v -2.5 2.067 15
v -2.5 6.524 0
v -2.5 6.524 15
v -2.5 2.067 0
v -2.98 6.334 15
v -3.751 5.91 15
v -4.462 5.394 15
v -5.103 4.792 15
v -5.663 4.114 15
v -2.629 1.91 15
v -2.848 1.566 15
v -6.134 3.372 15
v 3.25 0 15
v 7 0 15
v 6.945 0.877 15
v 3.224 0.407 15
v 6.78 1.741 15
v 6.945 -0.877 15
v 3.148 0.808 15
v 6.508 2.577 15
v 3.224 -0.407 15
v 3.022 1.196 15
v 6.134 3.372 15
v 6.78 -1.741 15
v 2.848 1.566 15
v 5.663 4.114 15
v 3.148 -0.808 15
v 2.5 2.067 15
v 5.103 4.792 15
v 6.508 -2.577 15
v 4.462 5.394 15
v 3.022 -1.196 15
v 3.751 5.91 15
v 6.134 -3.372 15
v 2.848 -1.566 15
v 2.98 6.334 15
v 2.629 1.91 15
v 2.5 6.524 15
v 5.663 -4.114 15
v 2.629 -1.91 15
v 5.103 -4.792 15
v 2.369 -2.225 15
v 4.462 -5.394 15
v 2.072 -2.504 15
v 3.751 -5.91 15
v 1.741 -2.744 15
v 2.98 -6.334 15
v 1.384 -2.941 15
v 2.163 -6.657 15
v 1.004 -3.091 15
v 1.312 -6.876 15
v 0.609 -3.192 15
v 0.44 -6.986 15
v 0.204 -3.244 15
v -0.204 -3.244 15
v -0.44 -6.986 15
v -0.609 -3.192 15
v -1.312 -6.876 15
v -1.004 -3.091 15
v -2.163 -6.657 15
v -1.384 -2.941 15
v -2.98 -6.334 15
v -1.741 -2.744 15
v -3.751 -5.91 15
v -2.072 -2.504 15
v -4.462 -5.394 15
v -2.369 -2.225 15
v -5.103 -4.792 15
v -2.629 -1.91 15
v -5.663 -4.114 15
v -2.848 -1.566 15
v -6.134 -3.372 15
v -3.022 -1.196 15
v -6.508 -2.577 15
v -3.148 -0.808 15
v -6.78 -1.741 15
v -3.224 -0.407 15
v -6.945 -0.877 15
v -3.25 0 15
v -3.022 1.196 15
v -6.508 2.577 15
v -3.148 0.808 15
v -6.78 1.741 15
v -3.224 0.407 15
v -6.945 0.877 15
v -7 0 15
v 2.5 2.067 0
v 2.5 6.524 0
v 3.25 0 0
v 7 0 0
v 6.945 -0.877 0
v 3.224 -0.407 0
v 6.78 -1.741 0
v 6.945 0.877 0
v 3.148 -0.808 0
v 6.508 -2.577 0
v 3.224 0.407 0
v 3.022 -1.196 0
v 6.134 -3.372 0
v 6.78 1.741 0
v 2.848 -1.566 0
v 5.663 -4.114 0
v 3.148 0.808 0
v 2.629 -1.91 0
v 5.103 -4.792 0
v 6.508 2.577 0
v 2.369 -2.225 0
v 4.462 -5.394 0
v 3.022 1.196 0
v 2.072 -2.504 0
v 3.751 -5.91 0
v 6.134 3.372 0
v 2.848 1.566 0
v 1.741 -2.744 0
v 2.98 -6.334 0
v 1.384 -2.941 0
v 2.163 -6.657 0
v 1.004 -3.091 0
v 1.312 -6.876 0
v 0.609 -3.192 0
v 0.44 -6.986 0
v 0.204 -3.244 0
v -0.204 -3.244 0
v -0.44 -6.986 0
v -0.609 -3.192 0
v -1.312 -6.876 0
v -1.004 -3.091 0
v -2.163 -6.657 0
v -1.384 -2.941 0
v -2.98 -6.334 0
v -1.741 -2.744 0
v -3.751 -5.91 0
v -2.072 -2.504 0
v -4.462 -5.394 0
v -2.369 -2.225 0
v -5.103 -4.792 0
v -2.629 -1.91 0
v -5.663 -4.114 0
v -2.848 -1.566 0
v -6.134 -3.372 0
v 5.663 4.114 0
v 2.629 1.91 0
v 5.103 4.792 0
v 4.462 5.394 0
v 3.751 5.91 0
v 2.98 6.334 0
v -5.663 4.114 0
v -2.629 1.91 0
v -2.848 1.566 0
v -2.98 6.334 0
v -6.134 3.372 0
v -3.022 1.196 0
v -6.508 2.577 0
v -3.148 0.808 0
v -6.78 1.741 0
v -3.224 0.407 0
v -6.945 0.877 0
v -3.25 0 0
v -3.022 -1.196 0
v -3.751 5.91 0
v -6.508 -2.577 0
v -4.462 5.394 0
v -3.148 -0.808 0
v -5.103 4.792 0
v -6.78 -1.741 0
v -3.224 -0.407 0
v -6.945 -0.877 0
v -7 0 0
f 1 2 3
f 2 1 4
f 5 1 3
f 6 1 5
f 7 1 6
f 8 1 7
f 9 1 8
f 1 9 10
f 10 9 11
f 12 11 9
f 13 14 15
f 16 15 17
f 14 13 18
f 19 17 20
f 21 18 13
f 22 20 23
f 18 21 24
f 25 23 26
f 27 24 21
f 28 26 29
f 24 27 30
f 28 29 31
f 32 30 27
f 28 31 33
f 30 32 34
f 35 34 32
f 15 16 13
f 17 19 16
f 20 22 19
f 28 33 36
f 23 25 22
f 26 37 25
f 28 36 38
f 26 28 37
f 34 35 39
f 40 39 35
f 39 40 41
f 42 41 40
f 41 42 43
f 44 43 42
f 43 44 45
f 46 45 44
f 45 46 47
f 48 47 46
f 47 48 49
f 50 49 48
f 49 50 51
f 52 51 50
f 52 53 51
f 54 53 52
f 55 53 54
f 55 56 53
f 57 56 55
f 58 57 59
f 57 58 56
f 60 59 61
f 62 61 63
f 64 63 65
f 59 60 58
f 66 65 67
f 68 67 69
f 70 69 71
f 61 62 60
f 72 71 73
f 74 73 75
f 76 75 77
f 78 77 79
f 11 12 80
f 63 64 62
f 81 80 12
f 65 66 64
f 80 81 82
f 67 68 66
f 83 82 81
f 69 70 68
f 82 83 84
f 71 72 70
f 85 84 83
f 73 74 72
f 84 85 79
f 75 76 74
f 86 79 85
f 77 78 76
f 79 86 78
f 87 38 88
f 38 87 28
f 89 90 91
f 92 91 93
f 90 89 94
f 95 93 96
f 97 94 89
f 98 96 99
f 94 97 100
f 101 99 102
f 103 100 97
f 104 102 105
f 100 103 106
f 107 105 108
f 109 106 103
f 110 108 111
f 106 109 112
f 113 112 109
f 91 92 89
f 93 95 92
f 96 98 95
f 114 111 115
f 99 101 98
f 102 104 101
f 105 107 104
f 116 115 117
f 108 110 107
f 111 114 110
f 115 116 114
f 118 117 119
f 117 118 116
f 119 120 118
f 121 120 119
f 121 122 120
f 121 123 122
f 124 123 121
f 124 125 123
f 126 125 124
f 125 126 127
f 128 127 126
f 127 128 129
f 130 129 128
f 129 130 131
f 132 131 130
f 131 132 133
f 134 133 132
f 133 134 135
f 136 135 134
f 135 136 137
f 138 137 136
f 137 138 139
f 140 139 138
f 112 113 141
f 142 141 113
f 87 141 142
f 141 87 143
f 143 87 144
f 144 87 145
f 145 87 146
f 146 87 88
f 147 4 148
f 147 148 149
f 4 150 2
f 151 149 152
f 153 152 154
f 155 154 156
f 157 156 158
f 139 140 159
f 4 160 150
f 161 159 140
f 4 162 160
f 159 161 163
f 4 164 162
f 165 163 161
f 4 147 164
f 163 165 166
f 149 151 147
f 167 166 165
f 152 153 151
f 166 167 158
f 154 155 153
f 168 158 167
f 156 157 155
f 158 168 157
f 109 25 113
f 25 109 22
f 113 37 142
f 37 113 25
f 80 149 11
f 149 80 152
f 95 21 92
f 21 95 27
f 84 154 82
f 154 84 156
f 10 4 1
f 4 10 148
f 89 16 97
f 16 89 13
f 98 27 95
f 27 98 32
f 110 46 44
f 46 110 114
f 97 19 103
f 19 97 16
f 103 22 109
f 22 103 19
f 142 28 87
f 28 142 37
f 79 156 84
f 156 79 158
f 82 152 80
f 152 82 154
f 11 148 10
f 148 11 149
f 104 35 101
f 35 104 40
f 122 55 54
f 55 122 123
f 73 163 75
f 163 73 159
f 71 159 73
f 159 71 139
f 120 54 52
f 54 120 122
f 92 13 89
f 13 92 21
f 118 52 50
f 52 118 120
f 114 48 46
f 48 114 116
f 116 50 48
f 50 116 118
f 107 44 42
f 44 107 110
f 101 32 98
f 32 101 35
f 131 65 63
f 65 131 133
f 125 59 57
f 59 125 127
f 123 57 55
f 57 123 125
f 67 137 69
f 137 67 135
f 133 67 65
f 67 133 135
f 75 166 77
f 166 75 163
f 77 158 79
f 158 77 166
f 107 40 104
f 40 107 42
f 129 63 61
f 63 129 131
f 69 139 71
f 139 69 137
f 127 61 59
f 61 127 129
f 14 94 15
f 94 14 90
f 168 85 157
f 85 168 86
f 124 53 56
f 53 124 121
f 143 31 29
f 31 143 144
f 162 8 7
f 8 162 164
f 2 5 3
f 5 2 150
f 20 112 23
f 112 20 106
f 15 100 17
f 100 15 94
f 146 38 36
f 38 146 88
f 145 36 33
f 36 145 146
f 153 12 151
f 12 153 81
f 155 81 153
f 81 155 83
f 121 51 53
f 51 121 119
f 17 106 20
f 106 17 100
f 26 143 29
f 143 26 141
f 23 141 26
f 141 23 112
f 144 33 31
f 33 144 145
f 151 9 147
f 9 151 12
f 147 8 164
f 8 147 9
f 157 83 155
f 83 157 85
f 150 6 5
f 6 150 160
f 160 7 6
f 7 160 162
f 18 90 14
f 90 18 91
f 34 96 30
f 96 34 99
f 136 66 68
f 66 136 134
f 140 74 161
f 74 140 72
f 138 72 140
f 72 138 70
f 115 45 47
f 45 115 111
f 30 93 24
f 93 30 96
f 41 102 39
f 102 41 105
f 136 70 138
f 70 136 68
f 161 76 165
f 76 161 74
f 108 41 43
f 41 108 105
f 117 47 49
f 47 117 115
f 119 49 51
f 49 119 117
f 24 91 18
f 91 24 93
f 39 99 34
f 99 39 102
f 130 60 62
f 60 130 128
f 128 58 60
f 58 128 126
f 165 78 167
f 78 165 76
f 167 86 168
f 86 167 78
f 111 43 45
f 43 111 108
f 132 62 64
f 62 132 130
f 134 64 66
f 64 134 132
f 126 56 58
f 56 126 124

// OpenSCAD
$fn = 50;


difference() {
	union() {
		cylinder(h = 15, r = 7.0000000000);
	}
	union() {
		#translate(v = [-2.5000000000, 0.0000000000, 0]) {
			cube(size = [5, 20, 15]);
		}
		translate(v = [0, 0, -100]) {
			cylinder(h = 200, r = 3.2500000000);
		}
		translate(v = [0, 0, -100]) {
			cylinder(h = 200, r = 1.8000000000);
		}
	}
}
